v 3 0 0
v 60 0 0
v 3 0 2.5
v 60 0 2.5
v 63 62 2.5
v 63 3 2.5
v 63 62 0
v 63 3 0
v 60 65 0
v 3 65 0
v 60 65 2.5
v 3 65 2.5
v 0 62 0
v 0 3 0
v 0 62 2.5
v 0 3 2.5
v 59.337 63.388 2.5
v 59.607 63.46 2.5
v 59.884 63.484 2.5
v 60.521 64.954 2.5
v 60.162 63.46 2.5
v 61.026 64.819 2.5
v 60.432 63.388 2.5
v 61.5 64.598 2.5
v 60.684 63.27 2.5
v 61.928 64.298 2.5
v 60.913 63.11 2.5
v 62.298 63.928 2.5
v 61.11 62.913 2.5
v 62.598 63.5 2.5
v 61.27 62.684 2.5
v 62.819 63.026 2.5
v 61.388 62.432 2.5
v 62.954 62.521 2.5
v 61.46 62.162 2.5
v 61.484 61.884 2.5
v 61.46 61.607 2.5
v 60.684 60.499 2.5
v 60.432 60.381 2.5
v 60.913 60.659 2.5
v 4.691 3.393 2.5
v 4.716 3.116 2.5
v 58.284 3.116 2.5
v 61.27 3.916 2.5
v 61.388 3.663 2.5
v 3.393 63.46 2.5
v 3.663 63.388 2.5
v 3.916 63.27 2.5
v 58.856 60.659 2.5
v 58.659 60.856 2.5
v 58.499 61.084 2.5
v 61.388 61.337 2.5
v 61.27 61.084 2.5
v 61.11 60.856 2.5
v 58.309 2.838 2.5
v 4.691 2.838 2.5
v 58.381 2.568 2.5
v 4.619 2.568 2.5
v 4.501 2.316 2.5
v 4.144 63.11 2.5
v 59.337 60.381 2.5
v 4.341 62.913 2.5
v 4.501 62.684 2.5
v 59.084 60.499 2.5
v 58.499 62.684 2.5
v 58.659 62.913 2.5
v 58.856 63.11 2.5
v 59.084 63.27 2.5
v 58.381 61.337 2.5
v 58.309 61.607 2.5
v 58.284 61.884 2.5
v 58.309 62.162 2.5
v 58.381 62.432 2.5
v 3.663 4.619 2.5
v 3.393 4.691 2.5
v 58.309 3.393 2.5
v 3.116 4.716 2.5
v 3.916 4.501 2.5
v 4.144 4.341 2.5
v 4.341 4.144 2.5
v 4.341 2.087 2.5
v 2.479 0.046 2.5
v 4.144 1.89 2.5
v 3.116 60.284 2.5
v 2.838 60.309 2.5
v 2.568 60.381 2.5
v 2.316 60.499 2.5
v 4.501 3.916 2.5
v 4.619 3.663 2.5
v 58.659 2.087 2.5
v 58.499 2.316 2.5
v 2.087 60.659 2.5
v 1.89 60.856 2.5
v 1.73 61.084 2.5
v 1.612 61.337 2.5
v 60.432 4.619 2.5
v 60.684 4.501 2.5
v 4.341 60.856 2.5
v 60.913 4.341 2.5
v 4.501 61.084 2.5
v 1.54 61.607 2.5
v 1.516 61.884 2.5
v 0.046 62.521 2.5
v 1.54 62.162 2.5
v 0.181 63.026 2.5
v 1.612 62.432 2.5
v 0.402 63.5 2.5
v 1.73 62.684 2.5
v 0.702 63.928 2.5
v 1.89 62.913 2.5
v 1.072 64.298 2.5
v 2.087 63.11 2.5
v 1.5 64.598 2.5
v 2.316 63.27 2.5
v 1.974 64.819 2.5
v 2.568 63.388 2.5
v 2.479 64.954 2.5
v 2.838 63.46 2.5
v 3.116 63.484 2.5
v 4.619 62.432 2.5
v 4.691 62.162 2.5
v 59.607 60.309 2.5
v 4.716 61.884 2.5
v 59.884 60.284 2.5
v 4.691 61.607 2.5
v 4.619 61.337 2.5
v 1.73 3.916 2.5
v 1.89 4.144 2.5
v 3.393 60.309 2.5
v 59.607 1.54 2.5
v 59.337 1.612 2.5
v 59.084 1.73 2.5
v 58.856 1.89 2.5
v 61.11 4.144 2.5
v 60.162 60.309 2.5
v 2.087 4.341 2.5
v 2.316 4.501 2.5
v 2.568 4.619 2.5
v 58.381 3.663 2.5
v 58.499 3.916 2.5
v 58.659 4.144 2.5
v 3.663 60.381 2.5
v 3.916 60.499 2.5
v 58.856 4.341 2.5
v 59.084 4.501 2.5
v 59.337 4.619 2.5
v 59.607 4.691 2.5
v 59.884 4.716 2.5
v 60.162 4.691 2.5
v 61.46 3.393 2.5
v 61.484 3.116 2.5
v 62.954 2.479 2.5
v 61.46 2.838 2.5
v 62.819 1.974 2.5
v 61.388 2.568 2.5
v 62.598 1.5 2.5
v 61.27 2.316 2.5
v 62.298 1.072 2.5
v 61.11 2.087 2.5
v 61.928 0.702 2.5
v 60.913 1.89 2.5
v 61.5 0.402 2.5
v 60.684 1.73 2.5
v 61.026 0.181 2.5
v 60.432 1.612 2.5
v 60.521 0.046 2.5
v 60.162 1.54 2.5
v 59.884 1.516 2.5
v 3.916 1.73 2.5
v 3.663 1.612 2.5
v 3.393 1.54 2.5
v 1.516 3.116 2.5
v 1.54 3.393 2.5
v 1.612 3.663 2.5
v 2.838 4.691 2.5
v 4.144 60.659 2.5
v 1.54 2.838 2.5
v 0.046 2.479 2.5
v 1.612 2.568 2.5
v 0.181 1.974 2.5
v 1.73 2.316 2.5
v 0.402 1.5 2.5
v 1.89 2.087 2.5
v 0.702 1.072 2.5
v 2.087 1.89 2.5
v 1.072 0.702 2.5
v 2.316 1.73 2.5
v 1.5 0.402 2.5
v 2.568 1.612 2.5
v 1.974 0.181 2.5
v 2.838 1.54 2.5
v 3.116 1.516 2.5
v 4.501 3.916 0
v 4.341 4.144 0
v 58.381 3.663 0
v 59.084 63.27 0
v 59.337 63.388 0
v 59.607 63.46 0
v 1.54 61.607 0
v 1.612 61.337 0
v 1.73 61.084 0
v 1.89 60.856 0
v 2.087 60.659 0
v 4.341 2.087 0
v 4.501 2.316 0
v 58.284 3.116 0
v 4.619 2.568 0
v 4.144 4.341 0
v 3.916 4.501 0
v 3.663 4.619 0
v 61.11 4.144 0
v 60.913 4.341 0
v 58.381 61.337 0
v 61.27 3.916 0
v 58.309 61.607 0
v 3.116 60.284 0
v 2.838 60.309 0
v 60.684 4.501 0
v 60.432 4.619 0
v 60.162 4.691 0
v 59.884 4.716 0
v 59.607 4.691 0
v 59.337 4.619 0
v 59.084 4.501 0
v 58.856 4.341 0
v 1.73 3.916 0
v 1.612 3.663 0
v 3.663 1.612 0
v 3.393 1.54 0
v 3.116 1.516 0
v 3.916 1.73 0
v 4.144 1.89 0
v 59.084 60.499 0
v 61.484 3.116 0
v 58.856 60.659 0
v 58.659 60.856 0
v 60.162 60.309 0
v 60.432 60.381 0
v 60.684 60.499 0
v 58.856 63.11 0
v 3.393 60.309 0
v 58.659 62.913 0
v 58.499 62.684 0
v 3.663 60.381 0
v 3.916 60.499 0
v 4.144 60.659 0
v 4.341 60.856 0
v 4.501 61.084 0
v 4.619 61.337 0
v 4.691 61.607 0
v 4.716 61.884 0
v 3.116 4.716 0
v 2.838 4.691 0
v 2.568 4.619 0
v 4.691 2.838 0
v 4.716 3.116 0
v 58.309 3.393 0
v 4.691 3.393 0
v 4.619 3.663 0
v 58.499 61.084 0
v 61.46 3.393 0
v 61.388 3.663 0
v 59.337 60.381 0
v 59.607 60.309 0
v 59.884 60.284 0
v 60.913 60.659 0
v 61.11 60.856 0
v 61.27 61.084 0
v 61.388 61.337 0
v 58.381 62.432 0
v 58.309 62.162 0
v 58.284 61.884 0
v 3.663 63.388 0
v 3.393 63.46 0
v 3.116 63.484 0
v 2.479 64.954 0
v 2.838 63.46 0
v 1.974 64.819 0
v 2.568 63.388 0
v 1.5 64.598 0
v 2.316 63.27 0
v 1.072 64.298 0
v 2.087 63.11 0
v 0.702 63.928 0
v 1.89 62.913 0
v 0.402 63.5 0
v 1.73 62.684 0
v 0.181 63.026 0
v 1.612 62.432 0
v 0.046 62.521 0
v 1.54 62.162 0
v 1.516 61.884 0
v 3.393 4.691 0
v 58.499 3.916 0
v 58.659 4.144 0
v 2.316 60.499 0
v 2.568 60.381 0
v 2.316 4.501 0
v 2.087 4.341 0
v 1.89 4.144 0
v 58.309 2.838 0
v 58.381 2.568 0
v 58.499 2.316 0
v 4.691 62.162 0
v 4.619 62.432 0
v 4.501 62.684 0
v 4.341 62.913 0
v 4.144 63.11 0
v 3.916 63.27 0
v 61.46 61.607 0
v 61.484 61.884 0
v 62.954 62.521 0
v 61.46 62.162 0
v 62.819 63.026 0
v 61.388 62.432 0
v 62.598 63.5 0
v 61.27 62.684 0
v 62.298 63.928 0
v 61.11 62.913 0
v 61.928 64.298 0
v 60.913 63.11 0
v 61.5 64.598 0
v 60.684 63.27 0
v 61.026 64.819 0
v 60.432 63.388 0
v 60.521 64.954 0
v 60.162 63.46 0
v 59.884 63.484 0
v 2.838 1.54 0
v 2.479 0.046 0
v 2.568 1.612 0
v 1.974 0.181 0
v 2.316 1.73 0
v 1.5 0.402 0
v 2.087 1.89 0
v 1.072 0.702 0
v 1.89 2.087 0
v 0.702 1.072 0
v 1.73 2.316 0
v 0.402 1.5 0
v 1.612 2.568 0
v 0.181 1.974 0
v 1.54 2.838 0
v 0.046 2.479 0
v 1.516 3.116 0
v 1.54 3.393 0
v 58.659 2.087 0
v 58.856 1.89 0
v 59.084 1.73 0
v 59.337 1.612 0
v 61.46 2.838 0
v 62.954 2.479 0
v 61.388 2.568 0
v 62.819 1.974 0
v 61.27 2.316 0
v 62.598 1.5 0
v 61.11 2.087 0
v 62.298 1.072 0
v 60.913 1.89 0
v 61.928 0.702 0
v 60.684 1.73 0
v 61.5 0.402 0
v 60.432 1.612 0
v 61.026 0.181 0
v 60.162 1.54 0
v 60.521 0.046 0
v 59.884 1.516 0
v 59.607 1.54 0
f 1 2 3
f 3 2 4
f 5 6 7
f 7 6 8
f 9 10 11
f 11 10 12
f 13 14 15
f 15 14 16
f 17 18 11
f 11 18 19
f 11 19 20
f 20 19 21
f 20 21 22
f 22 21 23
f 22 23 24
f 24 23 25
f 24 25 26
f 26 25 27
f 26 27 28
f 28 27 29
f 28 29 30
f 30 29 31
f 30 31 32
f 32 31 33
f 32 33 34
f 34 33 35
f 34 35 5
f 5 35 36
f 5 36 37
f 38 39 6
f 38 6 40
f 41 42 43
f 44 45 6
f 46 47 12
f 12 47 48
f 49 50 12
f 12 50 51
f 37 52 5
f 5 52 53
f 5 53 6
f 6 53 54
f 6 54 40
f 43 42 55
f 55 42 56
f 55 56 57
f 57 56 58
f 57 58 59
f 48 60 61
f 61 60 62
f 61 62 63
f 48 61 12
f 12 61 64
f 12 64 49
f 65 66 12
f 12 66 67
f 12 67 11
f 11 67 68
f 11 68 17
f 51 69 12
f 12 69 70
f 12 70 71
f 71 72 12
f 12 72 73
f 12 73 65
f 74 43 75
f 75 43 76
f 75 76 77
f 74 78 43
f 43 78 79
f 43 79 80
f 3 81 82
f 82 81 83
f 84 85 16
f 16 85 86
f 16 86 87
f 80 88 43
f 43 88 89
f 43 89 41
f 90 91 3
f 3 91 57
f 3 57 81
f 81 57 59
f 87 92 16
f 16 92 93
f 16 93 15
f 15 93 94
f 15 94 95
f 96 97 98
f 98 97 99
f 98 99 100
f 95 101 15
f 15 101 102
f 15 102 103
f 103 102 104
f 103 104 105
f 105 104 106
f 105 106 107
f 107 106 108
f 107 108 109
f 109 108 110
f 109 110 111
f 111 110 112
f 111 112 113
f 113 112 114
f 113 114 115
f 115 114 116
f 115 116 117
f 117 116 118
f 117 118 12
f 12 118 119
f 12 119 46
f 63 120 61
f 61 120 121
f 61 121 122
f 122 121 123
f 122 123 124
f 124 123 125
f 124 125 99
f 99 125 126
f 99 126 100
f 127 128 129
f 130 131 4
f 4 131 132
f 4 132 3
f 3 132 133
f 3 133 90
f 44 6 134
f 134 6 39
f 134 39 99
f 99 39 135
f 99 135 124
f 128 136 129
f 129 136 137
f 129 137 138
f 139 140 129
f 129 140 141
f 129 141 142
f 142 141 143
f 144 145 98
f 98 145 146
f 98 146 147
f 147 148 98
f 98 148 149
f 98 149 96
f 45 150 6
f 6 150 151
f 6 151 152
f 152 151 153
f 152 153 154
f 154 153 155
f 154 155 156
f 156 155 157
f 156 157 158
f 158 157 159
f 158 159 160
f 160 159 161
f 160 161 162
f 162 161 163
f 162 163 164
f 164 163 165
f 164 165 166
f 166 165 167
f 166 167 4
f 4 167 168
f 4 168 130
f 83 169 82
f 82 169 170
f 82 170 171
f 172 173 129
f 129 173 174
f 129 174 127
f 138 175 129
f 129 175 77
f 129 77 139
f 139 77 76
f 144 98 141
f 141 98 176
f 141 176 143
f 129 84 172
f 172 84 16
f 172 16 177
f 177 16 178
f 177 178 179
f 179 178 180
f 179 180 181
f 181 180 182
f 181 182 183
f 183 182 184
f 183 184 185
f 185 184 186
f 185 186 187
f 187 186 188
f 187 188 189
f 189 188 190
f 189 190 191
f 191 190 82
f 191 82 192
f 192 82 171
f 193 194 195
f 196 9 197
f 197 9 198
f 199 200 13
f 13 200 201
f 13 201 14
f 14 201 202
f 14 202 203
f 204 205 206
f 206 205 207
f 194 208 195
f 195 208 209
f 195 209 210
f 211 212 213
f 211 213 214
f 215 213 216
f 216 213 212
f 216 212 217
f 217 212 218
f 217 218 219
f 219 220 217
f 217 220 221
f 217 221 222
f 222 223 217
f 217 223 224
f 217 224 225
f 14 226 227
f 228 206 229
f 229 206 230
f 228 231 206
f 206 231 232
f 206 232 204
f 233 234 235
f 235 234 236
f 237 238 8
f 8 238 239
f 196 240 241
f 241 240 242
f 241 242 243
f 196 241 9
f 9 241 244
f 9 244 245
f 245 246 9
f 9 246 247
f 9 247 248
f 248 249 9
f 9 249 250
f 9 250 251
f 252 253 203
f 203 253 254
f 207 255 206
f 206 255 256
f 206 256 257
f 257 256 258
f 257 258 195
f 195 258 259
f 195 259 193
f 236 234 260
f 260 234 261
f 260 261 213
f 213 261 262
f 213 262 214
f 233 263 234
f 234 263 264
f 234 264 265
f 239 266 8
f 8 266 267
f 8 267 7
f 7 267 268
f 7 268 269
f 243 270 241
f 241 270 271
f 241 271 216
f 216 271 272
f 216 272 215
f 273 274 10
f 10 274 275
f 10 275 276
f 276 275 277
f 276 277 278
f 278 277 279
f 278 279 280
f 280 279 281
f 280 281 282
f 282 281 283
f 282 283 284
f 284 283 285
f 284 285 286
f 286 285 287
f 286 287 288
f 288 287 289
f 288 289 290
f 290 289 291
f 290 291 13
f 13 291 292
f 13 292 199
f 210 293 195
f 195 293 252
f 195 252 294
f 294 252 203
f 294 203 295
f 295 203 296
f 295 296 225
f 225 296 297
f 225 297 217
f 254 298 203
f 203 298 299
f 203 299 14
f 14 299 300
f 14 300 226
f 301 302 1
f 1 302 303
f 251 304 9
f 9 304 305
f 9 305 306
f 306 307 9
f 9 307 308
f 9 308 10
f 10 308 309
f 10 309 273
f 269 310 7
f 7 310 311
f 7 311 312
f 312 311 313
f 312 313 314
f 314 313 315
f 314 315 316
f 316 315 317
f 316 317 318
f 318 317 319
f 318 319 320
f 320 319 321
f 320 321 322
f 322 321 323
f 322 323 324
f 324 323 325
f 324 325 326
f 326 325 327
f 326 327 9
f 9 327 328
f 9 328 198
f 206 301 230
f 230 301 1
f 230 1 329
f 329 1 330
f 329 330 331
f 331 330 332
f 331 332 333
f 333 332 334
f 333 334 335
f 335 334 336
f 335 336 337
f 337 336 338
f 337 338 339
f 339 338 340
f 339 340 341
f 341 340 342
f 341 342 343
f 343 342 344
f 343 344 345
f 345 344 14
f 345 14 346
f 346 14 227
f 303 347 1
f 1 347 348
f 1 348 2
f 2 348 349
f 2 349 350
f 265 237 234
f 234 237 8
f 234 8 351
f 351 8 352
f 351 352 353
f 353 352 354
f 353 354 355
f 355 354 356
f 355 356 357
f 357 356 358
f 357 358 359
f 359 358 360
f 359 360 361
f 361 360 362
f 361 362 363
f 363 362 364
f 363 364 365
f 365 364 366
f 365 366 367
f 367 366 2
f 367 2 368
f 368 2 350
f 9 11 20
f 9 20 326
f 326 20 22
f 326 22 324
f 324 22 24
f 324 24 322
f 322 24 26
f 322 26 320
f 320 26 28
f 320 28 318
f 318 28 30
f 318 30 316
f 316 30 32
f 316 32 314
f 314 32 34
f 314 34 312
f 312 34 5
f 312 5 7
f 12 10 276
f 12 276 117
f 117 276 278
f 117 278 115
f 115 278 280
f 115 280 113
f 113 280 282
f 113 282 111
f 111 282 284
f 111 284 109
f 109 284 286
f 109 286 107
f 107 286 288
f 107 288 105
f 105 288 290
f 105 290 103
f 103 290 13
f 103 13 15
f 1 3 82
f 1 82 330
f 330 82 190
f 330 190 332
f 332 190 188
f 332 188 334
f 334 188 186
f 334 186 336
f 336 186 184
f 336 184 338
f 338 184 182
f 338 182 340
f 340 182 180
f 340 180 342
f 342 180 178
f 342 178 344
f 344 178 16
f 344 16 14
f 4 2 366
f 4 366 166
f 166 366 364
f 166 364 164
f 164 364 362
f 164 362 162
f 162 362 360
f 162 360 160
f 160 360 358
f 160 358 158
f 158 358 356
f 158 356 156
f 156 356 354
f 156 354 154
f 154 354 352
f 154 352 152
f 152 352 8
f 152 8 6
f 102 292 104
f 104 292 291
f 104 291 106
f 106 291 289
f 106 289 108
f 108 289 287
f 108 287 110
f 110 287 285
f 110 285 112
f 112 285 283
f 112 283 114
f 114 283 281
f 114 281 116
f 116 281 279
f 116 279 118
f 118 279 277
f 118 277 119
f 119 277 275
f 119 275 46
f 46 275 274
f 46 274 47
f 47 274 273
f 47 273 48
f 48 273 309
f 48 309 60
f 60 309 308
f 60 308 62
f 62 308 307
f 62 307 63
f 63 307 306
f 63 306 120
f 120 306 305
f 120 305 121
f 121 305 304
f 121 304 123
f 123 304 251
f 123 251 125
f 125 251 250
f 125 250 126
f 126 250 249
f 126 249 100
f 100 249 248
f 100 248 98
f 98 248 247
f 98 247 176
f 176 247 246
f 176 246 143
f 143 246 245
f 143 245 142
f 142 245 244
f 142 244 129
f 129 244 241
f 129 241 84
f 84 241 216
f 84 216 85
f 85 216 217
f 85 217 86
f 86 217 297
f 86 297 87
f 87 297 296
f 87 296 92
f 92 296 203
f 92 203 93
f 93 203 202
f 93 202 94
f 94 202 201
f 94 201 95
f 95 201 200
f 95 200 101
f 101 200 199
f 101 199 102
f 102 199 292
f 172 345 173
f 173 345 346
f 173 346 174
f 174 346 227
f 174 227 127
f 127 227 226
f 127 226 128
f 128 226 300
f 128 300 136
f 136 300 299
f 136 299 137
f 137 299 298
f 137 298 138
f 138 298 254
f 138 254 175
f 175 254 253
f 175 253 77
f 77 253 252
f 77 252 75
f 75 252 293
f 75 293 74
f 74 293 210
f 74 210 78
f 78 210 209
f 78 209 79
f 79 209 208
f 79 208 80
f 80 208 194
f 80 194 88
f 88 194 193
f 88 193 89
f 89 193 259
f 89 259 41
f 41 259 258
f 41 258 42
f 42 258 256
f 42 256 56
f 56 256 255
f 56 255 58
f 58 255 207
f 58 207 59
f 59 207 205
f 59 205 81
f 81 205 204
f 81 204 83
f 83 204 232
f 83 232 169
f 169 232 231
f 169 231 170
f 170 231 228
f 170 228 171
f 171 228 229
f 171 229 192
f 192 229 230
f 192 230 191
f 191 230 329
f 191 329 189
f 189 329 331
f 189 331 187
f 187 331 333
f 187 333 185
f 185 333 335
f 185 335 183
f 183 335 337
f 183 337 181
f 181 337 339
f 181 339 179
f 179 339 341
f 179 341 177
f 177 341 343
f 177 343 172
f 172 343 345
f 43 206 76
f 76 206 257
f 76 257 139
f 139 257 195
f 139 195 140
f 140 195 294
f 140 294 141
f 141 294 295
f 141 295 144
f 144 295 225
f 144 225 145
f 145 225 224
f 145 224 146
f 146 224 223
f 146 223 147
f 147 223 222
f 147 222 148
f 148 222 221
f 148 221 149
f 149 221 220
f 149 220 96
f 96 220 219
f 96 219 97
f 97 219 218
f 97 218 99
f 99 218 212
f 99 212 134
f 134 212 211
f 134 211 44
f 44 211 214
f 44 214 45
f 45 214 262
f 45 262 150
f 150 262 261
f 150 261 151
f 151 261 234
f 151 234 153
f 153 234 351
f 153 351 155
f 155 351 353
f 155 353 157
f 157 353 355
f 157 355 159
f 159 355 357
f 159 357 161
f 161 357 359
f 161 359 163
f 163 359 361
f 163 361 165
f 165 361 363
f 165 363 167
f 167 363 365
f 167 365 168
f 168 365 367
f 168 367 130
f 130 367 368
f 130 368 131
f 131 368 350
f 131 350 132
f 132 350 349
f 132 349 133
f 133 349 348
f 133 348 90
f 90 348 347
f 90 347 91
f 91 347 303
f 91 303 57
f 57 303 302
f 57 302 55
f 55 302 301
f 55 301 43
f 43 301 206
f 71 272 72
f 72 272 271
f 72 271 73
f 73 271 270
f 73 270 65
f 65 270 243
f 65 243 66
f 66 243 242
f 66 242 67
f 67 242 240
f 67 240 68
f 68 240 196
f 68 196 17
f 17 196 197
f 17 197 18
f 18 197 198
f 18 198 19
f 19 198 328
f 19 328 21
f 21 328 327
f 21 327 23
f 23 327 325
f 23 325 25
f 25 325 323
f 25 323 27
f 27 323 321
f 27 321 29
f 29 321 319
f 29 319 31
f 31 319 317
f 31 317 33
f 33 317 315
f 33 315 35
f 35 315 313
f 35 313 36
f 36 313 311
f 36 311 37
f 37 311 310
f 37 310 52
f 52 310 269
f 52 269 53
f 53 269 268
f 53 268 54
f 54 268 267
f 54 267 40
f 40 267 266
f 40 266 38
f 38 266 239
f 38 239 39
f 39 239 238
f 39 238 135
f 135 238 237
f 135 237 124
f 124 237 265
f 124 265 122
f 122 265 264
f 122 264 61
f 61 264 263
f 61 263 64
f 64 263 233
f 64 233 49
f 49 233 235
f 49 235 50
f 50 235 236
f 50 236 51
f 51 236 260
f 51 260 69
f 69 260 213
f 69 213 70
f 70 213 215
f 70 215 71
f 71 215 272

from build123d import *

# Parameters (mm, degrees)
SKETCH1_W           = 63
SKETCH1_H           = 65
BOSS_EXTRUDE3_DEPTH = 2.5
FILLET1_R           = 3
SKETCH2_R           = 1.6
CUT_EXTRUDE13_DEPTH = 2.5


with BuildPart() as part:
    # Sketch1 → Boss-Extrude3 (new body)
    with BuildSketch(Plane.XY):
        with Locations((31.5, 32.5)):
            Rectangle(SKETCH1_W, SKETCH1_H)
    extrude(amount=BOSS_EXTRUDE3_DEPTH)

    # Fillet1
    fillet1_edges = [part.edges().sort_by_distance(p)[0] for p in [
        (0, 0, 1.25),
        (0, 65, 1.25),
        (63, 65, 1.25),
        (63, 0, 1.25),
    ]]
    fillet(fillet1_edges, radius=FILLET1_R)

    # Sketch2 → Cut-Extrude13 (cut)
    with BuildSketch(Plane.XY):
        with Locations((3.115503651, 61.884496349)):
            Circle(SKETCH2_R)
        with Locations((3.115503651, 3.115503651)):
            Circle(SKETCH2_R)
        with Locations((59.884496349, 3.115503651)):
            Circle(SKETCH2_R)
        with Locations((59.884496349, 61.884496349)):
            Circle(SKETCH2_R)
    extrude(amount=CUT_EXTRUDE13_DEPTH, mode=Mode.SUBTRACT)


solid = part.part
